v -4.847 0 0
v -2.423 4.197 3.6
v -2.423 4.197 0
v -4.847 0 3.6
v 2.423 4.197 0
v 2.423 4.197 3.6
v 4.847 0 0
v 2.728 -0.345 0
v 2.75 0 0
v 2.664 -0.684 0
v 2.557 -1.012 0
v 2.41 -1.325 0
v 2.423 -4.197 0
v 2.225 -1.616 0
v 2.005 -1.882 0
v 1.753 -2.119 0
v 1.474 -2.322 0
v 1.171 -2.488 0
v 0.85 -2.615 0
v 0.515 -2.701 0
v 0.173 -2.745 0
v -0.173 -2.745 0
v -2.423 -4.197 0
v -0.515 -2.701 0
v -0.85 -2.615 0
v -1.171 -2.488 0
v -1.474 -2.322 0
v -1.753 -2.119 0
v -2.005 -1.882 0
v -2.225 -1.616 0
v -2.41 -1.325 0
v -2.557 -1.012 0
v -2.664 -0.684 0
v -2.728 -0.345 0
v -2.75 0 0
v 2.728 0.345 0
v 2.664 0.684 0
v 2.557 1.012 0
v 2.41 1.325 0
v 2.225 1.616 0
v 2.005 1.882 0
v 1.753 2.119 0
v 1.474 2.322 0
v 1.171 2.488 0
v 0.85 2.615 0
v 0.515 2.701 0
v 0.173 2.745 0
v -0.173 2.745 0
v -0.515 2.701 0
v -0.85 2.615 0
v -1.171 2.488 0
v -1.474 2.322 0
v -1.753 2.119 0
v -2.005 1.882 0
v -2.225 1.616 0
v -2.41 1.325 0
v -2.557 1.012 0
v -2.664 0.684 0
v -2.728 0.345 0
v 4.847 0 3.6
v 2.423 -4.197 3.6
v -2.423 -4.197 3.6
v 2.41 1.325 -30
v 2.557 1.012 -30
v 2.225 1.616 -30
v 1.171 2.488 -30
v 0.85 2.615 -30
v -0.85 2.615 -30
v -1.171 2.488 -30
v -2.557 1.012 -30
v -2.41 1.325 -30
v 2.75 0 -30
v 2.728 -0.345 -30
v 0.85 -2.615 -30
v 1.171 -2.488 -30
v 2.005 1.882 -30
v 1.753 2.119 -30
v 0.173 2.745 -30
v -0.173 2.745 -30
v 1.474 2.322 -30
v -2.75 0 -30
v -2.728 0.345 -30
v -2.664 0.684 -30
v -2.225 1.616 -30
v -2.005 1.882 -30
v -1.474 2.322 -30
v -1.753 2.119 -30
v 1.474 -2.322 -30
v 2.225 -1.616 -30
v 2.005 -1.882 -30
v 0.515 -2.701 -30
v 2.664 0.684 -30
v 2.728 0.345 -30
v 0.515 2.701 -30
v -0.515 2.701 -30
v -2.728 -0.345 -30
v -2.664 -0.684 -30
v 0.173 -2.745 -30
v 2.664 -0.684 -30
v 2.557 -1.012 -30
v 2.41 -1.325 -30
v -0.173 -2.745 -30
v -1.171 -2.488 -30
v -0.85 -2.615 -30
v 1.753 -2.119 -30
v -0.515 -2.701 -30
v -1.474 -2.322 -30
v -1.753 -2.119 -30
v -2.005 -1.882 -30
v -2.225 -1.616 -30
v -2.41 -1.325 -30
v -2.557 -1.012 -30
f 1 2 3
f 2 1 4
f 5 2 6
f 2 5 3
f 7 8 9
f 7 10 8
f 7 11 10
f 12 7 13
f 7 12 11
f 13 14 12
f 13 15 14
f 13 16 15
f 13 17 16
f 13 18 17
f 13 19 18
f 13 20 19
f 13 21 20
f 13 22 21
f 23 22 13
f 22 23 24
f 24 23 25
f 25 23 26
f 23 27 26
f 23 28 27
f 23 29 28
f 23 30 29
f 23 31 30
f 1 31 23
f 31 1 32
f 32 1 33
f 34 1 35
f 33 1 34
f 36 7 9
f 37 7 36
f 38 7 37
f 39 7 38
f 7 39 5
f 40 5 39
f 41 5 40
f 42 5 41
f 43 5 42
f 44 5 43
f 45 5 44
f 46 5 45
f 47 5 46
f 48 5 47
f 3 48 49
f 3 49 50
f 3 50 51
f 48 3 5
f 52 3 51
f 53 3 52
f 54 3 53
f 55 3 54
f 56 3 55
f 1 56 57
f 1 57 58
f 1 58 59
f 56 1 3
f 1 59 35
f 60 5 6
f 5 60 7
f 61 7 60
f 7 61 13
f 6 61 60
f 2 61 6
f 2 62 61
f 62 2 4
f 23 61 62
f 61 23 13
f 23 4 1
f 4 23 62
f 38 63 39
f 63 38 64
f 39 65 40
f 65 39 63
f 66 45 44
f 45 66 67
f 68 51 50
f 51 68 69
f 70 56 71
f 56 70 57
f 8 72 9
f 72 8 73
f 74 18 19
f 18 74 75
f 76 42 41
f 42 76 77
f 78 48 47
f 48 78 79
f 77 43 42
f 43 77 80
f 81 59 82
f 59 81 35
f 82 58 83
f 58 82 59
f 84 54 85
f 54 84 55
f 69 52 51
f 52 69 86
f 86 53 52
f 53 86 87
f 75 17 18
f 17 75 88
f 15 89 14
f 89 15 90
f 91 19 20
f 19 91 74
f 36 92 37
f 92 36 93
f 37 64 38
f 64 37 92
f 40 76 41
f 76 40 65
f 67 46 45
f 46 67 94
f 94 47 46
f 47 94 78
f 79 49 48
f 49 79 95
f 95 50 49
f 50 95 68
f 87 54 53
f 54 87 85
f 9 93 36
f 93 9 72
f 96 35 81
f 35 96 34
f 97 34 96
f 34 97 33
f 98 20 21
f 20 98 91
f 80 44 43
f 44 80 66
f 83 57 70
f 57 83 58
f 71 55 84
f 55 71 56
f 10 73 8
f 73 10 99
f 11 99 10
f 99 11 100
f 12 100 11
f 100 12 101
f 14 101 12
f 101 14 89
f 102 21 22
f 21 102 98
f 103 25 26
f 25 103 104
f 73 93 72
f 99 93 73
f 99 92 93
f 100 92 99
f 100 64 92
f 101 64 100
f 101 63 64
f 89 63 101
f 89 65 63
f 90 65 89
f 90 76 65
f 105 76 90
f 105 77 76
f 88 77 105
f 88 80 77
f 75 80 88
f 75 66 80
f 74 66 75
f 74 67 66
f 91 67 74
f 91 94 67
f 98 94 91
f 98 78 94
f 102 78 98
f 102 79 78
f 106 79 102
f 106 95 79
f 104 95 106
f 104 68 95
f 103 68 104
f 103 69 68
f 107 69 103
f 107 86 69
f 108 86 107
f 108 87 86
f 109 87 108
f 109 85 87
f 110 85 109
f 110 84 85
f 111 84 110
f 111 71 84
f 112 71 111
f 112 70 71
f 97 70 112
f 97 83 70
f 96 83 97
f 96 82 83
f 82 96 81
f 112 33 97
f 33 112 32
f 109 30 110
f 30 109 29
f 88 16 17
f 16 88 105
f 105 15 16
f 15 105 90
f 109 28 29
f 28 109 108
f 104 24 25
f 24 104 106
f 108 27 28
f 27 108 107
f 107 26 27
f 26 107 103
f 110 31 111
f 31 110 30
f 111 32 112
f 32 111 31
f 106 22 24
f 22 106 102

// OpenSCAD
$fn = 50;


difference() {
	union() {
		translate(v = [0, 0, 0]) {
			rotate(a = [0, 0, 0]) {
				translate(v = [0, 0, 0]) {
					rotate(a = [0, 0, 0]) {
						linear_extrude(height = 3.6000000000) {
							polygon(points = [[4.8468000000, 0.0000000000], [2.4234000000, 4.1974519271], [-2.4234000000, 4.1974519271], [-4.8468000000, 0.0000000000], [-2.4234000000, -4.1974519271], [2.4234000000, -4.1974519271]]);
						}
					}
				}
			}
		}
		translate(v = [0, 0, -30]) {
			rotate(a = [0, 0, 0]) {
				cylinder(h = 30, r = 2.7500000000);
			}
		}
	}
	union();
}
